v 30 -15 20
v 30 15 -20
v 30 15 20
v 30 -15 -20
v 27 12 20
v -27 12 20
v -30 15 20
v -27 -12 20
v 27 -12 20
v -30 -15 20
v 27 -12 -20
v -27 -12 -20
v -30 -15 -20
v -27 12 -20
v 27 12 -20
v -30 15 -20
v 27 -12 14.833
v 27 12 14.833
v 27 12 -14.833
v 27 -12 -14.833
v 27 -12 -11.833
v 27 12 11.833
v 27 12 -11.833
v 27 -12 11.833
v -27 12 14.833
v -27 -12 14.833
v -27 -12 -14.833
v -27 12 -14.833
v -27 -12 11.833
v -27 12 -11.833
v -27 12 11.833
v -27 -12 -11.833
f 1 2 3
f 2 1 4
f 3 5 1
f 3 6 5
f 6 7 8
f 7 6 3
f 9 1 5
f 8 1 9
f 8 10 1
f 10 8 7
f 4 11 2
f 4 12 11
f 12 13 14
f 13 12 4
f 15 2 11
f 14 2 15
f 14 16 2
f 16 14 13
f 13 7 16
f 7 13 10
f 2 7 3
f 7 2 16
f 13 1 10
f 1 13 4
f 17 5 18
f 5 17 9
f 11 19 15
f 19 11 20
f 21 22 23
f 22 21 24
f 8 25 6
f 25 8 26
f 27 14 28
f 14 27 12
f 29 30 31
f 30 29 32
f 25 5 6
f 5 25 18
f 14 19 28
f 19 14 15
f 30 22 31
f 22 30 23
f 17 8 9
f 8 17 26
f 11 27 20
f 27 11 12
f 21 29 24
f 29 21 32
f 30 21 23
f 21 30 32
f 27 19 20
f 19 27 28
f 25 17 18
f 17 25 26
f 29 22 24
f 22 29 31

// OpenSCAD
// Parameters for the model
outer_frame_length = 60;  // Length of the outer frame
outer_frame_width = 30;   // Width of the outer frame
outer_frame_height = 40;  // Height of the outer frame
outer_frame_thickness = 3; // Thickness of the outer frame walls

inner_divider_thickness = 3; // Thickness of the inner dividers
inner_divider_spacing = outer_frame_height / 3; // Spacing between dividers

side_wall_thickness = outer_frame_thickness; // Thickness of the side walls

// Module for the outer frame
module outer_frame() {
    difference() {
        // Outer block
        cube([outer_frame_length, outer_frame_width, outer_frame_height], center = true);
        // Hollowed-out inner block
        translate([0, 0, 0])
            cube([outer_frame_length - 2 * outer_frame_thickness, 
                  outer_frame_width - 2 * outer_frame_thickness, 
                  outer_frame_height], center = true);
    }
}

// Module for an inner divider
module inner_divider(position_z) {
    translate([0, 0, position_z])
        cube([outer_frame_length - 2 * outer_frame_thickness, 
              outer_frame_width - 2 * outer_frame_thickness, 
              inner_divider_thickness], center = true);
}

// Module for a side wall
module side_wall(position_x) {
    translate([position_x, 0, 0])
        cube([side_wall_thickness, 
              outer_frame_width, 
              outer_frame_height], center = true);
}

// Assemble the model
module flexible_coupling() {
    // Layer 1: Outer frame
    outer_frame();
    
    // Layer 2: Inner dividers
    inner_divider(-inner_divider_spacing);
    inner_divider(inner_divider_spacing);
    
    // Layer 3: Side walls
    side_wall(-outer_frame_length / 2 + side_wall_thickness / 2);
    side_wall(outer_frame_length / 2 - side_wall_thickness / 2);
}

// Render the model
flexible_coupling();
